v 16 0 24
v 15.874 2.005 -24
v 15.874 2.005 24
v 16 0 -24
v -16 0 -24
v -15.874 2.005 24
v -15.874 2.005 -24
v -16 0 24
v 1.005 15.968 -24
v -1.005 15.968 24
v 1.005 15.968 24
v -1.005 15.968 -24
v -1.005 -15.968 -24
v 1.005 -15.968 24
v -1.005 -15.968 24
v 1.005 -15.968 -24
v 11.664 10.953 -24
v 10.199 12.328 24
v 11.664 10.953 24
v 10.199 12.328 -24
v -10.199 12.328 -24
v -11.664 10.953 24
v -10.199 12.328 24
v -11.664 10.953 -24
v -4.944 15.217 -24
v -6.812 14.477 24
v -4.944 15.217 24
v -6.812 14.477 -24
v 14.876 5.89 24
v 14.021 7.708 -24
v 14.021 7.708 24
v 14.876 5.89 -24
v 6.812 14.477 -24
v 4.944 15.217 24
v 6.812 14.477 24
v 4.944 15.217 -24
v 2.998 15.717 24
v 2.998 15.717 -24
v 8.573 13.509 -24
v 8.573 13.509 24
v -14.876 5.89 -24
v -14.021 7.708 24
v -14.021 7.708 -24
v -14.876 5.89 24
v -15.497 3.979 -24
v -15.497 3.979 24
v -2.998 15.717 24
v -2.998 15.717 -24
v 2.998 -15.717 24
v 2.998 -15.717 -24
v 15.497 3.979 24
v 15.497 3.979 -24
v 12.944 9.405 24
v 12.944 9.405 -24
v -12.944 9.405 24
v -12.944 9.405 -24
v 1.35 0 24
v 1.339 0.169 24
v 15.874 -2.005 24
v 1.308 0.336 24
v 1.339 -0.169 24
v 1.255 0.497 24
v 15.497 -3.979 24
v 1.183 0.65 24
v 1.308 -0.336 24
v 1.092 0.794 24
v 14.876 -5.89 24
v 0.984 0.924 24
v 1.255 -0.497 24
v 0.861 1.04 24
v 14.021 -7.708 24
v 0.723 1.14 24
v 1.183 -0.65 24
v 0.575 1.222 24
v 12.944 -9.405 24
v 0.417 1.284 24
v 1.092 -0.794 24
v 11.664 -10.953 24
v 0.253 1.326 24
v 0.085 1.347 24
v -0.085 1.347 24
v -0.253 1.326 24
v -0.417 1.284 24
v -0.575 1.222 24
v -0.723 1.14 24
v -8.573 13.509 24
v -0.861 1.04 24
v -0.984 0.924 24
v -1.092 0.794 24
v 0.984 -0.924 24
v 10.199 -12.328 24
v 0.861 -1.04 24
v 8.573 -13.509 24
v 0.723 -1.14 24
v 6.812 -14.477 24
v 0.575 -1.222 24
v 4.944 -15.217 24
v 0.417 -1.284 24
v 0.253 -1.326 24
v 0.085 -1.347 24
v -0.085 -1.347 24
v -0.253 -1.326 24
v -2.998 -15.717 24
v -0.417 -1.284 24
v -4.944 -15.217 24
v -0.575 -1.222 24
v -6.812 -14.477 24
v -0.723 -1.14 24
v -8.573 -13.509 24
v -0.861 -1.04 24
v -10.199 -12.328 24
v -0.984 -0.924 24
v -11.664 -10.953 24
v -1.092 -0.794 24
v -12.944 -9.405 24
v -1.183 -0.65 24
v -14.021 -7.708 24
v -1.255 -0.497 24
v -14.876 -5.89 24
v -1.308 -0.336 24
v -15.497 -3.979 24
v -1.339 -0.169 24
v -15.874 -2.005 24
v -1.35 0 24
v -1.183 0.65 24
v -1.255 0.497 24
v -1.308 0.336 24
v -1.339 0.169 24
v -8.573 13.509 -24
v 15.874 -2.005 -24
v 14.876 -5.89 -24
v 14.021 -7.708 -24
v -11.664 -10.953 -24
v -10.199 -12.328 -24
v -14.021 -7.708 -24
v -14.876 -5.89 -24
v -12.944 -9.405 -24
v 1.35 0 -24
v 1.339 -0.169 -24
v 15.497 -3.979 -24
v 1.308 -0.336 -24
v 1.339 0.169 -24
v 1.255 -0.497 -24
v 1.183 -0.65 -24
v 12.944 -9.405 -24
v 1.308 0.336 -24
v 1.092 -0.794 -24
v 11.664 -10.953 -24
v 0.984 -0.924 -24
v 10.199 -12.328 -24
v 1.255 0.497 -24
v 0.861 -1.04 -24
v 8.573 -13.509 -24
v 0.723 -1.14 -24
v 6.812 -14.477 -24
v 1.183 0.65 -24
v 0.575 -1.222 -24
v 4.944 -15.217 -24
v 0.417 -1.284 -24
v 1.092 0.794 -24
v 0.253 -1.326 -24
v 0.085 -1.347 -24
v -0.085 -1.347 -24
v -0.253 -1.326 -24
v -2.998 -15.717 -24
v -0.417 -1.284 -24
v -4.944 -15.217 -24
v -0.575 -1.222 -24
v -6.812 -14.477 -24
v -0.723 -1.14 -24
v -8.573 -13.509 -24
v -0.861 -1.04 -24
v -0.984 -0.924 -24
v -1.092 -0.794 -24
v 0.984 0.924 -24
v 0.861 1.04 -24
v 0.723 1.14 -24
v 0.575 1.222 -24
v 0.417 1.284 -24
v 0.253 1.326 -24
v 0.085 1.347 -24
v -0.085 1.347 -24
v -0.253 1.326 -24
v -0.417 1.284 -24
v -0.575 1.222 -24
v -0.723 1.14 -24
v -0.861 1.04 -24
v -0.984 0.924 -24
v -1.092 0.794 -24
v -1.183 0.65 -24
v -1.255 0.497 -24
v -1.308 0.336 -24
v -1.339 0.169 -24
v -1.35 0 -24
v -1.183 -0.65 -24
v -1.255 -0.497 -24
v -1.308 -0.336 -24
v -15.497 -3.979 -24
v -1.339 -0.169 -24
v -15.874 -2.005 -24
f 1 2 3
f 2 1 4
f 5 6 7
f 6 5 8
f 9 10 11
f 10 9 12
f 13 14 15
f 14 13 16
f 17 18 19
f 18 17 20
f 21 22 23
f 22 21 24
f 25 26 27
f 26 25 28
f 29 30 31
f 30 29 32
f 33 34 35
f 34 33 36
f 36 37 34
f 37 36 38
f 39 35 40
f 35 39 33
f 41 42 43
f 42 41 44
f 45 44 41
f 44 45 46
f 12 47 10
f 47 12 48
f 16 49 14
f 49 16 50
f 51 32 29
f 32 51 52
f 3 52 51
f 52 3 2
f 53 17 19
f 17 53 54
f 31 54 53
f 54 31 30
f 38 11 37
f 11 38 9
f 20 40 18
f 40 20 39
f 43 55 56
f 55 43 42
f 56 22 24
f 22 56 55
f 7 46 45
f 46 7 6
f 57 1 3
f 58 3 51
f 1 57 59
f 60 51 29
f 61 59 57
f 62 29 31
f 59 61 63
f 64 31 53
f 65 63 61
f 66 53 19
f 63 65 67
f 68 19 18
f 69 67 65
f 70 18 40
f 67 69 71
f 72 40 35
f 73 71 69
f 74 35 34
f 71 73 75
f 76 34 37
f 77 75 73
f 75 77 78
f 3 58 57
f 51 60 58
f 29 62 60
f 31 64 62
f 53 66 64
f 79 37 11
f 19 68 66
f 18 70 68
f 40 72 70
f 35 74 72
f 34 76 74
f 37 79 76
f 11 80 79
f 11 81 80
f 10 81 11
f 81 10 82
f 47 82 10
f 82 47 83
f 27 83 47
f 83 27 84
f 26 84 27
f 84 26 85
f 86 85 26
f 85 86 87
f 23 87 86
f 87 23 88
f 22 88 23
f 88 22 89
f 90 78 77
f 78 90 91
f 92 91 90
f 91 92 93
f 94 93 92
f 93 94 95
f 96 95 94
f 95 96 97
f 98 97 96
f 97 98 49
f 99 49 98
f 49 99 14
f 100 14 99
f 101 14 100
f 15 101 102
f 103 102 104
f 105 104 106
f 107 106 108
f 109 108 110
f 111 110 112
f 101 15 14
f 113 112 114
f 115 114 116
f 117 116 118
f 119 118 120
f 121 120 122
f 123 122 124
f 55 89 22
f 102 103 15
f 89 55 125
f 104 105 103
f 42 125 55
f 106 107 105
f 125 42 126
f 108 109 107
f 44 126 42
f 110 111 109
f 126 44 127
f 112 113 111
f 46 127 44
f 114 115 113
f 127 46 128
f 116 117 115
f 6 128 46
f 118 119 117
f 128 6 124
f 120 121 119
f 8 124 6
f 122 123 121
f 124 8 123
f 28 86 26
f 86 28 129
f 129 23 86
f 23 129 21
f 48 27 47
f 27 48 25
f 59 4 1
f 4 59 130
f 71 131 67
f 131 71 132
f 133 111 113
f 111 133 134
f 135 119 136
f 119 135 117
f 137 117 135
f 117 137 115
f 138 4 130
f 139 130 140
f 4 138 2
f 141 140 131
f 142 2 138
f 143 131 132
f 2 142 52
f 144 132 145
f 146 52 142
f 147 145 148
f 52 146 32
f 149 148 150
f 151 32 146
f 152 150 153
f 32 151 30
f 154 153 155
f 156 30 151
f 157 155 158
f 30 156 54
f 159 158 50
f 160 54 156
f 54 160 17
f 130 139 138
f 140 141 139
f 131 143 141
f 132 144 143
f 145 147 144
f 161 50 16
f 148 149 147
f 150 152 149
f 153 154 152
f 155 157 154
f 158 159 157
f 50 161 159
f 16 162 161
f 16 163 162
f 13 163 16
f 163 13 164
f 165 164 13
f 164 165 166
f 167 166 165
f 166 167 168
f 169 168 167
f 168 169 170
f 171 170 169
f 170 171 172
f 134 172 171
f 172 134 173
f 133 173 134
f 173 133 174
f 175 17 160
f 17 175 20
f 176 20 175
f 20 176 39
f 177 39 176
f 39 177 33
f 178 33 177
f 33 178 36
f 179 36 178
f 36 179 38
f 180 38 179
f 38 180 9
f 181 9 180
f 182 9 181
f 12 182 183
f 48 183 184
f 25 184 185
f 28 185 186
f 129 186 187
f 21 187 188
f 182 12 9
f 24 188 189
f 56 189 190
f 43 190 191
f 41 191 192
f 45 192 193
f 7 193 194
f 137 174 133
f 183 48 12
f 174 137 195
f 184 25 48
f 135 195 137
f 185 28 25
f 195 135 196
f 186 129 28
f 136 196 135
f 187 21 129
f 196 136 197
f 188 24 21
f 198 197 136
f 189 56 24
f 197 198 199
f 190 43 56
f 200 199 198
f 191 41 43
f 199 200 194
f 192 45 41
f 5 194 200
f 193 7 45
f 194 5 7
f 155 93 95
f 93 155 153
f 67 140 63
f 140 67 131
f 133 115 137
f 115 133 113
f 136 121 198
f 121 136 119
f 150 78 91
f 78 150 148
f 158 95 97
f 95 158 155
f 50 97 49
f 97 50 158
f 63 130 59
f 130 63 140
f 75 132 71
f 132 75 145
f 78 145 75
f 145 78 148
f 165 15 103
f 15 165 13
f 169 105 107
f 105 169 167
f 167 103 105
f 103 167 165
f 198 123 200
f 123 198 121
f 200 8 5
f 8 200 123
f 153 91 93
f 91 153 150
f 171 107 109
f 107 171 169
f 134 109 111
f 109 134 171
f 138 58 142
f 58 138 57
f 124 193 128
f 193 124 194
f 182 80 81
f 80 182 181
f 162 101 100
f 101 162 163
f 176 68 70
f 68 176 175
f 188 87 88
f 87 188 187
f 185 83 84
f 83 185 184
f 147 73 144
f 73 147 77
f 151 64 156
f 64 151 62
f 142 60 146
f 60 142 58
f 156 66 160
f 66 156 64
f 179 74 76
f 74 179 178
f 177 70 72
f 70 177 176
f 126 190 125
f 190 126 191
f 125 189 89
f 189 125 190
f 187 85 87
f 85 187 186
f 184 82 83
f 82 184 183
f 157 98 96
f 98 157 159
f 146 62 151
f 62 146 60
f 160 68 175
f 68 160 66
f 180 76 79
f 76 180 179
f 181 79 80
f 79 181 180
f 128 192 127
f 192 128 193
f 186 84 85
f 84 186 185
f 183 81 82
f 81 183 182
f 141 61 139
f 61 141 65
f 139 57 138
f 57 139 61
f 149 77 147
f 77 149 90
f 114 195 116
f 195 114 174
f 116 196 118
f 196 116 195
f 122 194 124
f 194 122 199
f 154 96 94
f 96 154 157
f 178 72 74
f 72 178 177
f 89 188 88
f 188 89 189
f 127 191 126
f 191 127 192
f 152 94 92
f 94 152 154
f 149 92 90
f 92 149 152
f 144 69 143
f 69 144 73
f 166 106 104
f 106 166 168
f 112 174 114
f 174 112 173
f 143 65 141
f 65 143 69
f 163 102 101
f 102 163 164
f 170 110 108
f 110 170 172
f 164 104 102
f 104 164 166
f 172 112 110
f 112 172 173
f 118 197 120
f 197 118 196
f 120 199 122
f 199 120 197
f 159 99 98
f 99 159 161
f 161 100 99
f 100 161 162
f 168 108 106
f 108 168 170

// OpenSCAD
$fn = 50;


difference() {
	union() {
		translate(v = [0, 0, -24.0000000000]) {
			cylinder(h = 48, r = 16.0000000000);
		}
	}
	union() {
		translate(v = [0, 0, -100.0000000000]) {
			cylinder(h = 200, r = 1.3500000000);
		}
	}
}
